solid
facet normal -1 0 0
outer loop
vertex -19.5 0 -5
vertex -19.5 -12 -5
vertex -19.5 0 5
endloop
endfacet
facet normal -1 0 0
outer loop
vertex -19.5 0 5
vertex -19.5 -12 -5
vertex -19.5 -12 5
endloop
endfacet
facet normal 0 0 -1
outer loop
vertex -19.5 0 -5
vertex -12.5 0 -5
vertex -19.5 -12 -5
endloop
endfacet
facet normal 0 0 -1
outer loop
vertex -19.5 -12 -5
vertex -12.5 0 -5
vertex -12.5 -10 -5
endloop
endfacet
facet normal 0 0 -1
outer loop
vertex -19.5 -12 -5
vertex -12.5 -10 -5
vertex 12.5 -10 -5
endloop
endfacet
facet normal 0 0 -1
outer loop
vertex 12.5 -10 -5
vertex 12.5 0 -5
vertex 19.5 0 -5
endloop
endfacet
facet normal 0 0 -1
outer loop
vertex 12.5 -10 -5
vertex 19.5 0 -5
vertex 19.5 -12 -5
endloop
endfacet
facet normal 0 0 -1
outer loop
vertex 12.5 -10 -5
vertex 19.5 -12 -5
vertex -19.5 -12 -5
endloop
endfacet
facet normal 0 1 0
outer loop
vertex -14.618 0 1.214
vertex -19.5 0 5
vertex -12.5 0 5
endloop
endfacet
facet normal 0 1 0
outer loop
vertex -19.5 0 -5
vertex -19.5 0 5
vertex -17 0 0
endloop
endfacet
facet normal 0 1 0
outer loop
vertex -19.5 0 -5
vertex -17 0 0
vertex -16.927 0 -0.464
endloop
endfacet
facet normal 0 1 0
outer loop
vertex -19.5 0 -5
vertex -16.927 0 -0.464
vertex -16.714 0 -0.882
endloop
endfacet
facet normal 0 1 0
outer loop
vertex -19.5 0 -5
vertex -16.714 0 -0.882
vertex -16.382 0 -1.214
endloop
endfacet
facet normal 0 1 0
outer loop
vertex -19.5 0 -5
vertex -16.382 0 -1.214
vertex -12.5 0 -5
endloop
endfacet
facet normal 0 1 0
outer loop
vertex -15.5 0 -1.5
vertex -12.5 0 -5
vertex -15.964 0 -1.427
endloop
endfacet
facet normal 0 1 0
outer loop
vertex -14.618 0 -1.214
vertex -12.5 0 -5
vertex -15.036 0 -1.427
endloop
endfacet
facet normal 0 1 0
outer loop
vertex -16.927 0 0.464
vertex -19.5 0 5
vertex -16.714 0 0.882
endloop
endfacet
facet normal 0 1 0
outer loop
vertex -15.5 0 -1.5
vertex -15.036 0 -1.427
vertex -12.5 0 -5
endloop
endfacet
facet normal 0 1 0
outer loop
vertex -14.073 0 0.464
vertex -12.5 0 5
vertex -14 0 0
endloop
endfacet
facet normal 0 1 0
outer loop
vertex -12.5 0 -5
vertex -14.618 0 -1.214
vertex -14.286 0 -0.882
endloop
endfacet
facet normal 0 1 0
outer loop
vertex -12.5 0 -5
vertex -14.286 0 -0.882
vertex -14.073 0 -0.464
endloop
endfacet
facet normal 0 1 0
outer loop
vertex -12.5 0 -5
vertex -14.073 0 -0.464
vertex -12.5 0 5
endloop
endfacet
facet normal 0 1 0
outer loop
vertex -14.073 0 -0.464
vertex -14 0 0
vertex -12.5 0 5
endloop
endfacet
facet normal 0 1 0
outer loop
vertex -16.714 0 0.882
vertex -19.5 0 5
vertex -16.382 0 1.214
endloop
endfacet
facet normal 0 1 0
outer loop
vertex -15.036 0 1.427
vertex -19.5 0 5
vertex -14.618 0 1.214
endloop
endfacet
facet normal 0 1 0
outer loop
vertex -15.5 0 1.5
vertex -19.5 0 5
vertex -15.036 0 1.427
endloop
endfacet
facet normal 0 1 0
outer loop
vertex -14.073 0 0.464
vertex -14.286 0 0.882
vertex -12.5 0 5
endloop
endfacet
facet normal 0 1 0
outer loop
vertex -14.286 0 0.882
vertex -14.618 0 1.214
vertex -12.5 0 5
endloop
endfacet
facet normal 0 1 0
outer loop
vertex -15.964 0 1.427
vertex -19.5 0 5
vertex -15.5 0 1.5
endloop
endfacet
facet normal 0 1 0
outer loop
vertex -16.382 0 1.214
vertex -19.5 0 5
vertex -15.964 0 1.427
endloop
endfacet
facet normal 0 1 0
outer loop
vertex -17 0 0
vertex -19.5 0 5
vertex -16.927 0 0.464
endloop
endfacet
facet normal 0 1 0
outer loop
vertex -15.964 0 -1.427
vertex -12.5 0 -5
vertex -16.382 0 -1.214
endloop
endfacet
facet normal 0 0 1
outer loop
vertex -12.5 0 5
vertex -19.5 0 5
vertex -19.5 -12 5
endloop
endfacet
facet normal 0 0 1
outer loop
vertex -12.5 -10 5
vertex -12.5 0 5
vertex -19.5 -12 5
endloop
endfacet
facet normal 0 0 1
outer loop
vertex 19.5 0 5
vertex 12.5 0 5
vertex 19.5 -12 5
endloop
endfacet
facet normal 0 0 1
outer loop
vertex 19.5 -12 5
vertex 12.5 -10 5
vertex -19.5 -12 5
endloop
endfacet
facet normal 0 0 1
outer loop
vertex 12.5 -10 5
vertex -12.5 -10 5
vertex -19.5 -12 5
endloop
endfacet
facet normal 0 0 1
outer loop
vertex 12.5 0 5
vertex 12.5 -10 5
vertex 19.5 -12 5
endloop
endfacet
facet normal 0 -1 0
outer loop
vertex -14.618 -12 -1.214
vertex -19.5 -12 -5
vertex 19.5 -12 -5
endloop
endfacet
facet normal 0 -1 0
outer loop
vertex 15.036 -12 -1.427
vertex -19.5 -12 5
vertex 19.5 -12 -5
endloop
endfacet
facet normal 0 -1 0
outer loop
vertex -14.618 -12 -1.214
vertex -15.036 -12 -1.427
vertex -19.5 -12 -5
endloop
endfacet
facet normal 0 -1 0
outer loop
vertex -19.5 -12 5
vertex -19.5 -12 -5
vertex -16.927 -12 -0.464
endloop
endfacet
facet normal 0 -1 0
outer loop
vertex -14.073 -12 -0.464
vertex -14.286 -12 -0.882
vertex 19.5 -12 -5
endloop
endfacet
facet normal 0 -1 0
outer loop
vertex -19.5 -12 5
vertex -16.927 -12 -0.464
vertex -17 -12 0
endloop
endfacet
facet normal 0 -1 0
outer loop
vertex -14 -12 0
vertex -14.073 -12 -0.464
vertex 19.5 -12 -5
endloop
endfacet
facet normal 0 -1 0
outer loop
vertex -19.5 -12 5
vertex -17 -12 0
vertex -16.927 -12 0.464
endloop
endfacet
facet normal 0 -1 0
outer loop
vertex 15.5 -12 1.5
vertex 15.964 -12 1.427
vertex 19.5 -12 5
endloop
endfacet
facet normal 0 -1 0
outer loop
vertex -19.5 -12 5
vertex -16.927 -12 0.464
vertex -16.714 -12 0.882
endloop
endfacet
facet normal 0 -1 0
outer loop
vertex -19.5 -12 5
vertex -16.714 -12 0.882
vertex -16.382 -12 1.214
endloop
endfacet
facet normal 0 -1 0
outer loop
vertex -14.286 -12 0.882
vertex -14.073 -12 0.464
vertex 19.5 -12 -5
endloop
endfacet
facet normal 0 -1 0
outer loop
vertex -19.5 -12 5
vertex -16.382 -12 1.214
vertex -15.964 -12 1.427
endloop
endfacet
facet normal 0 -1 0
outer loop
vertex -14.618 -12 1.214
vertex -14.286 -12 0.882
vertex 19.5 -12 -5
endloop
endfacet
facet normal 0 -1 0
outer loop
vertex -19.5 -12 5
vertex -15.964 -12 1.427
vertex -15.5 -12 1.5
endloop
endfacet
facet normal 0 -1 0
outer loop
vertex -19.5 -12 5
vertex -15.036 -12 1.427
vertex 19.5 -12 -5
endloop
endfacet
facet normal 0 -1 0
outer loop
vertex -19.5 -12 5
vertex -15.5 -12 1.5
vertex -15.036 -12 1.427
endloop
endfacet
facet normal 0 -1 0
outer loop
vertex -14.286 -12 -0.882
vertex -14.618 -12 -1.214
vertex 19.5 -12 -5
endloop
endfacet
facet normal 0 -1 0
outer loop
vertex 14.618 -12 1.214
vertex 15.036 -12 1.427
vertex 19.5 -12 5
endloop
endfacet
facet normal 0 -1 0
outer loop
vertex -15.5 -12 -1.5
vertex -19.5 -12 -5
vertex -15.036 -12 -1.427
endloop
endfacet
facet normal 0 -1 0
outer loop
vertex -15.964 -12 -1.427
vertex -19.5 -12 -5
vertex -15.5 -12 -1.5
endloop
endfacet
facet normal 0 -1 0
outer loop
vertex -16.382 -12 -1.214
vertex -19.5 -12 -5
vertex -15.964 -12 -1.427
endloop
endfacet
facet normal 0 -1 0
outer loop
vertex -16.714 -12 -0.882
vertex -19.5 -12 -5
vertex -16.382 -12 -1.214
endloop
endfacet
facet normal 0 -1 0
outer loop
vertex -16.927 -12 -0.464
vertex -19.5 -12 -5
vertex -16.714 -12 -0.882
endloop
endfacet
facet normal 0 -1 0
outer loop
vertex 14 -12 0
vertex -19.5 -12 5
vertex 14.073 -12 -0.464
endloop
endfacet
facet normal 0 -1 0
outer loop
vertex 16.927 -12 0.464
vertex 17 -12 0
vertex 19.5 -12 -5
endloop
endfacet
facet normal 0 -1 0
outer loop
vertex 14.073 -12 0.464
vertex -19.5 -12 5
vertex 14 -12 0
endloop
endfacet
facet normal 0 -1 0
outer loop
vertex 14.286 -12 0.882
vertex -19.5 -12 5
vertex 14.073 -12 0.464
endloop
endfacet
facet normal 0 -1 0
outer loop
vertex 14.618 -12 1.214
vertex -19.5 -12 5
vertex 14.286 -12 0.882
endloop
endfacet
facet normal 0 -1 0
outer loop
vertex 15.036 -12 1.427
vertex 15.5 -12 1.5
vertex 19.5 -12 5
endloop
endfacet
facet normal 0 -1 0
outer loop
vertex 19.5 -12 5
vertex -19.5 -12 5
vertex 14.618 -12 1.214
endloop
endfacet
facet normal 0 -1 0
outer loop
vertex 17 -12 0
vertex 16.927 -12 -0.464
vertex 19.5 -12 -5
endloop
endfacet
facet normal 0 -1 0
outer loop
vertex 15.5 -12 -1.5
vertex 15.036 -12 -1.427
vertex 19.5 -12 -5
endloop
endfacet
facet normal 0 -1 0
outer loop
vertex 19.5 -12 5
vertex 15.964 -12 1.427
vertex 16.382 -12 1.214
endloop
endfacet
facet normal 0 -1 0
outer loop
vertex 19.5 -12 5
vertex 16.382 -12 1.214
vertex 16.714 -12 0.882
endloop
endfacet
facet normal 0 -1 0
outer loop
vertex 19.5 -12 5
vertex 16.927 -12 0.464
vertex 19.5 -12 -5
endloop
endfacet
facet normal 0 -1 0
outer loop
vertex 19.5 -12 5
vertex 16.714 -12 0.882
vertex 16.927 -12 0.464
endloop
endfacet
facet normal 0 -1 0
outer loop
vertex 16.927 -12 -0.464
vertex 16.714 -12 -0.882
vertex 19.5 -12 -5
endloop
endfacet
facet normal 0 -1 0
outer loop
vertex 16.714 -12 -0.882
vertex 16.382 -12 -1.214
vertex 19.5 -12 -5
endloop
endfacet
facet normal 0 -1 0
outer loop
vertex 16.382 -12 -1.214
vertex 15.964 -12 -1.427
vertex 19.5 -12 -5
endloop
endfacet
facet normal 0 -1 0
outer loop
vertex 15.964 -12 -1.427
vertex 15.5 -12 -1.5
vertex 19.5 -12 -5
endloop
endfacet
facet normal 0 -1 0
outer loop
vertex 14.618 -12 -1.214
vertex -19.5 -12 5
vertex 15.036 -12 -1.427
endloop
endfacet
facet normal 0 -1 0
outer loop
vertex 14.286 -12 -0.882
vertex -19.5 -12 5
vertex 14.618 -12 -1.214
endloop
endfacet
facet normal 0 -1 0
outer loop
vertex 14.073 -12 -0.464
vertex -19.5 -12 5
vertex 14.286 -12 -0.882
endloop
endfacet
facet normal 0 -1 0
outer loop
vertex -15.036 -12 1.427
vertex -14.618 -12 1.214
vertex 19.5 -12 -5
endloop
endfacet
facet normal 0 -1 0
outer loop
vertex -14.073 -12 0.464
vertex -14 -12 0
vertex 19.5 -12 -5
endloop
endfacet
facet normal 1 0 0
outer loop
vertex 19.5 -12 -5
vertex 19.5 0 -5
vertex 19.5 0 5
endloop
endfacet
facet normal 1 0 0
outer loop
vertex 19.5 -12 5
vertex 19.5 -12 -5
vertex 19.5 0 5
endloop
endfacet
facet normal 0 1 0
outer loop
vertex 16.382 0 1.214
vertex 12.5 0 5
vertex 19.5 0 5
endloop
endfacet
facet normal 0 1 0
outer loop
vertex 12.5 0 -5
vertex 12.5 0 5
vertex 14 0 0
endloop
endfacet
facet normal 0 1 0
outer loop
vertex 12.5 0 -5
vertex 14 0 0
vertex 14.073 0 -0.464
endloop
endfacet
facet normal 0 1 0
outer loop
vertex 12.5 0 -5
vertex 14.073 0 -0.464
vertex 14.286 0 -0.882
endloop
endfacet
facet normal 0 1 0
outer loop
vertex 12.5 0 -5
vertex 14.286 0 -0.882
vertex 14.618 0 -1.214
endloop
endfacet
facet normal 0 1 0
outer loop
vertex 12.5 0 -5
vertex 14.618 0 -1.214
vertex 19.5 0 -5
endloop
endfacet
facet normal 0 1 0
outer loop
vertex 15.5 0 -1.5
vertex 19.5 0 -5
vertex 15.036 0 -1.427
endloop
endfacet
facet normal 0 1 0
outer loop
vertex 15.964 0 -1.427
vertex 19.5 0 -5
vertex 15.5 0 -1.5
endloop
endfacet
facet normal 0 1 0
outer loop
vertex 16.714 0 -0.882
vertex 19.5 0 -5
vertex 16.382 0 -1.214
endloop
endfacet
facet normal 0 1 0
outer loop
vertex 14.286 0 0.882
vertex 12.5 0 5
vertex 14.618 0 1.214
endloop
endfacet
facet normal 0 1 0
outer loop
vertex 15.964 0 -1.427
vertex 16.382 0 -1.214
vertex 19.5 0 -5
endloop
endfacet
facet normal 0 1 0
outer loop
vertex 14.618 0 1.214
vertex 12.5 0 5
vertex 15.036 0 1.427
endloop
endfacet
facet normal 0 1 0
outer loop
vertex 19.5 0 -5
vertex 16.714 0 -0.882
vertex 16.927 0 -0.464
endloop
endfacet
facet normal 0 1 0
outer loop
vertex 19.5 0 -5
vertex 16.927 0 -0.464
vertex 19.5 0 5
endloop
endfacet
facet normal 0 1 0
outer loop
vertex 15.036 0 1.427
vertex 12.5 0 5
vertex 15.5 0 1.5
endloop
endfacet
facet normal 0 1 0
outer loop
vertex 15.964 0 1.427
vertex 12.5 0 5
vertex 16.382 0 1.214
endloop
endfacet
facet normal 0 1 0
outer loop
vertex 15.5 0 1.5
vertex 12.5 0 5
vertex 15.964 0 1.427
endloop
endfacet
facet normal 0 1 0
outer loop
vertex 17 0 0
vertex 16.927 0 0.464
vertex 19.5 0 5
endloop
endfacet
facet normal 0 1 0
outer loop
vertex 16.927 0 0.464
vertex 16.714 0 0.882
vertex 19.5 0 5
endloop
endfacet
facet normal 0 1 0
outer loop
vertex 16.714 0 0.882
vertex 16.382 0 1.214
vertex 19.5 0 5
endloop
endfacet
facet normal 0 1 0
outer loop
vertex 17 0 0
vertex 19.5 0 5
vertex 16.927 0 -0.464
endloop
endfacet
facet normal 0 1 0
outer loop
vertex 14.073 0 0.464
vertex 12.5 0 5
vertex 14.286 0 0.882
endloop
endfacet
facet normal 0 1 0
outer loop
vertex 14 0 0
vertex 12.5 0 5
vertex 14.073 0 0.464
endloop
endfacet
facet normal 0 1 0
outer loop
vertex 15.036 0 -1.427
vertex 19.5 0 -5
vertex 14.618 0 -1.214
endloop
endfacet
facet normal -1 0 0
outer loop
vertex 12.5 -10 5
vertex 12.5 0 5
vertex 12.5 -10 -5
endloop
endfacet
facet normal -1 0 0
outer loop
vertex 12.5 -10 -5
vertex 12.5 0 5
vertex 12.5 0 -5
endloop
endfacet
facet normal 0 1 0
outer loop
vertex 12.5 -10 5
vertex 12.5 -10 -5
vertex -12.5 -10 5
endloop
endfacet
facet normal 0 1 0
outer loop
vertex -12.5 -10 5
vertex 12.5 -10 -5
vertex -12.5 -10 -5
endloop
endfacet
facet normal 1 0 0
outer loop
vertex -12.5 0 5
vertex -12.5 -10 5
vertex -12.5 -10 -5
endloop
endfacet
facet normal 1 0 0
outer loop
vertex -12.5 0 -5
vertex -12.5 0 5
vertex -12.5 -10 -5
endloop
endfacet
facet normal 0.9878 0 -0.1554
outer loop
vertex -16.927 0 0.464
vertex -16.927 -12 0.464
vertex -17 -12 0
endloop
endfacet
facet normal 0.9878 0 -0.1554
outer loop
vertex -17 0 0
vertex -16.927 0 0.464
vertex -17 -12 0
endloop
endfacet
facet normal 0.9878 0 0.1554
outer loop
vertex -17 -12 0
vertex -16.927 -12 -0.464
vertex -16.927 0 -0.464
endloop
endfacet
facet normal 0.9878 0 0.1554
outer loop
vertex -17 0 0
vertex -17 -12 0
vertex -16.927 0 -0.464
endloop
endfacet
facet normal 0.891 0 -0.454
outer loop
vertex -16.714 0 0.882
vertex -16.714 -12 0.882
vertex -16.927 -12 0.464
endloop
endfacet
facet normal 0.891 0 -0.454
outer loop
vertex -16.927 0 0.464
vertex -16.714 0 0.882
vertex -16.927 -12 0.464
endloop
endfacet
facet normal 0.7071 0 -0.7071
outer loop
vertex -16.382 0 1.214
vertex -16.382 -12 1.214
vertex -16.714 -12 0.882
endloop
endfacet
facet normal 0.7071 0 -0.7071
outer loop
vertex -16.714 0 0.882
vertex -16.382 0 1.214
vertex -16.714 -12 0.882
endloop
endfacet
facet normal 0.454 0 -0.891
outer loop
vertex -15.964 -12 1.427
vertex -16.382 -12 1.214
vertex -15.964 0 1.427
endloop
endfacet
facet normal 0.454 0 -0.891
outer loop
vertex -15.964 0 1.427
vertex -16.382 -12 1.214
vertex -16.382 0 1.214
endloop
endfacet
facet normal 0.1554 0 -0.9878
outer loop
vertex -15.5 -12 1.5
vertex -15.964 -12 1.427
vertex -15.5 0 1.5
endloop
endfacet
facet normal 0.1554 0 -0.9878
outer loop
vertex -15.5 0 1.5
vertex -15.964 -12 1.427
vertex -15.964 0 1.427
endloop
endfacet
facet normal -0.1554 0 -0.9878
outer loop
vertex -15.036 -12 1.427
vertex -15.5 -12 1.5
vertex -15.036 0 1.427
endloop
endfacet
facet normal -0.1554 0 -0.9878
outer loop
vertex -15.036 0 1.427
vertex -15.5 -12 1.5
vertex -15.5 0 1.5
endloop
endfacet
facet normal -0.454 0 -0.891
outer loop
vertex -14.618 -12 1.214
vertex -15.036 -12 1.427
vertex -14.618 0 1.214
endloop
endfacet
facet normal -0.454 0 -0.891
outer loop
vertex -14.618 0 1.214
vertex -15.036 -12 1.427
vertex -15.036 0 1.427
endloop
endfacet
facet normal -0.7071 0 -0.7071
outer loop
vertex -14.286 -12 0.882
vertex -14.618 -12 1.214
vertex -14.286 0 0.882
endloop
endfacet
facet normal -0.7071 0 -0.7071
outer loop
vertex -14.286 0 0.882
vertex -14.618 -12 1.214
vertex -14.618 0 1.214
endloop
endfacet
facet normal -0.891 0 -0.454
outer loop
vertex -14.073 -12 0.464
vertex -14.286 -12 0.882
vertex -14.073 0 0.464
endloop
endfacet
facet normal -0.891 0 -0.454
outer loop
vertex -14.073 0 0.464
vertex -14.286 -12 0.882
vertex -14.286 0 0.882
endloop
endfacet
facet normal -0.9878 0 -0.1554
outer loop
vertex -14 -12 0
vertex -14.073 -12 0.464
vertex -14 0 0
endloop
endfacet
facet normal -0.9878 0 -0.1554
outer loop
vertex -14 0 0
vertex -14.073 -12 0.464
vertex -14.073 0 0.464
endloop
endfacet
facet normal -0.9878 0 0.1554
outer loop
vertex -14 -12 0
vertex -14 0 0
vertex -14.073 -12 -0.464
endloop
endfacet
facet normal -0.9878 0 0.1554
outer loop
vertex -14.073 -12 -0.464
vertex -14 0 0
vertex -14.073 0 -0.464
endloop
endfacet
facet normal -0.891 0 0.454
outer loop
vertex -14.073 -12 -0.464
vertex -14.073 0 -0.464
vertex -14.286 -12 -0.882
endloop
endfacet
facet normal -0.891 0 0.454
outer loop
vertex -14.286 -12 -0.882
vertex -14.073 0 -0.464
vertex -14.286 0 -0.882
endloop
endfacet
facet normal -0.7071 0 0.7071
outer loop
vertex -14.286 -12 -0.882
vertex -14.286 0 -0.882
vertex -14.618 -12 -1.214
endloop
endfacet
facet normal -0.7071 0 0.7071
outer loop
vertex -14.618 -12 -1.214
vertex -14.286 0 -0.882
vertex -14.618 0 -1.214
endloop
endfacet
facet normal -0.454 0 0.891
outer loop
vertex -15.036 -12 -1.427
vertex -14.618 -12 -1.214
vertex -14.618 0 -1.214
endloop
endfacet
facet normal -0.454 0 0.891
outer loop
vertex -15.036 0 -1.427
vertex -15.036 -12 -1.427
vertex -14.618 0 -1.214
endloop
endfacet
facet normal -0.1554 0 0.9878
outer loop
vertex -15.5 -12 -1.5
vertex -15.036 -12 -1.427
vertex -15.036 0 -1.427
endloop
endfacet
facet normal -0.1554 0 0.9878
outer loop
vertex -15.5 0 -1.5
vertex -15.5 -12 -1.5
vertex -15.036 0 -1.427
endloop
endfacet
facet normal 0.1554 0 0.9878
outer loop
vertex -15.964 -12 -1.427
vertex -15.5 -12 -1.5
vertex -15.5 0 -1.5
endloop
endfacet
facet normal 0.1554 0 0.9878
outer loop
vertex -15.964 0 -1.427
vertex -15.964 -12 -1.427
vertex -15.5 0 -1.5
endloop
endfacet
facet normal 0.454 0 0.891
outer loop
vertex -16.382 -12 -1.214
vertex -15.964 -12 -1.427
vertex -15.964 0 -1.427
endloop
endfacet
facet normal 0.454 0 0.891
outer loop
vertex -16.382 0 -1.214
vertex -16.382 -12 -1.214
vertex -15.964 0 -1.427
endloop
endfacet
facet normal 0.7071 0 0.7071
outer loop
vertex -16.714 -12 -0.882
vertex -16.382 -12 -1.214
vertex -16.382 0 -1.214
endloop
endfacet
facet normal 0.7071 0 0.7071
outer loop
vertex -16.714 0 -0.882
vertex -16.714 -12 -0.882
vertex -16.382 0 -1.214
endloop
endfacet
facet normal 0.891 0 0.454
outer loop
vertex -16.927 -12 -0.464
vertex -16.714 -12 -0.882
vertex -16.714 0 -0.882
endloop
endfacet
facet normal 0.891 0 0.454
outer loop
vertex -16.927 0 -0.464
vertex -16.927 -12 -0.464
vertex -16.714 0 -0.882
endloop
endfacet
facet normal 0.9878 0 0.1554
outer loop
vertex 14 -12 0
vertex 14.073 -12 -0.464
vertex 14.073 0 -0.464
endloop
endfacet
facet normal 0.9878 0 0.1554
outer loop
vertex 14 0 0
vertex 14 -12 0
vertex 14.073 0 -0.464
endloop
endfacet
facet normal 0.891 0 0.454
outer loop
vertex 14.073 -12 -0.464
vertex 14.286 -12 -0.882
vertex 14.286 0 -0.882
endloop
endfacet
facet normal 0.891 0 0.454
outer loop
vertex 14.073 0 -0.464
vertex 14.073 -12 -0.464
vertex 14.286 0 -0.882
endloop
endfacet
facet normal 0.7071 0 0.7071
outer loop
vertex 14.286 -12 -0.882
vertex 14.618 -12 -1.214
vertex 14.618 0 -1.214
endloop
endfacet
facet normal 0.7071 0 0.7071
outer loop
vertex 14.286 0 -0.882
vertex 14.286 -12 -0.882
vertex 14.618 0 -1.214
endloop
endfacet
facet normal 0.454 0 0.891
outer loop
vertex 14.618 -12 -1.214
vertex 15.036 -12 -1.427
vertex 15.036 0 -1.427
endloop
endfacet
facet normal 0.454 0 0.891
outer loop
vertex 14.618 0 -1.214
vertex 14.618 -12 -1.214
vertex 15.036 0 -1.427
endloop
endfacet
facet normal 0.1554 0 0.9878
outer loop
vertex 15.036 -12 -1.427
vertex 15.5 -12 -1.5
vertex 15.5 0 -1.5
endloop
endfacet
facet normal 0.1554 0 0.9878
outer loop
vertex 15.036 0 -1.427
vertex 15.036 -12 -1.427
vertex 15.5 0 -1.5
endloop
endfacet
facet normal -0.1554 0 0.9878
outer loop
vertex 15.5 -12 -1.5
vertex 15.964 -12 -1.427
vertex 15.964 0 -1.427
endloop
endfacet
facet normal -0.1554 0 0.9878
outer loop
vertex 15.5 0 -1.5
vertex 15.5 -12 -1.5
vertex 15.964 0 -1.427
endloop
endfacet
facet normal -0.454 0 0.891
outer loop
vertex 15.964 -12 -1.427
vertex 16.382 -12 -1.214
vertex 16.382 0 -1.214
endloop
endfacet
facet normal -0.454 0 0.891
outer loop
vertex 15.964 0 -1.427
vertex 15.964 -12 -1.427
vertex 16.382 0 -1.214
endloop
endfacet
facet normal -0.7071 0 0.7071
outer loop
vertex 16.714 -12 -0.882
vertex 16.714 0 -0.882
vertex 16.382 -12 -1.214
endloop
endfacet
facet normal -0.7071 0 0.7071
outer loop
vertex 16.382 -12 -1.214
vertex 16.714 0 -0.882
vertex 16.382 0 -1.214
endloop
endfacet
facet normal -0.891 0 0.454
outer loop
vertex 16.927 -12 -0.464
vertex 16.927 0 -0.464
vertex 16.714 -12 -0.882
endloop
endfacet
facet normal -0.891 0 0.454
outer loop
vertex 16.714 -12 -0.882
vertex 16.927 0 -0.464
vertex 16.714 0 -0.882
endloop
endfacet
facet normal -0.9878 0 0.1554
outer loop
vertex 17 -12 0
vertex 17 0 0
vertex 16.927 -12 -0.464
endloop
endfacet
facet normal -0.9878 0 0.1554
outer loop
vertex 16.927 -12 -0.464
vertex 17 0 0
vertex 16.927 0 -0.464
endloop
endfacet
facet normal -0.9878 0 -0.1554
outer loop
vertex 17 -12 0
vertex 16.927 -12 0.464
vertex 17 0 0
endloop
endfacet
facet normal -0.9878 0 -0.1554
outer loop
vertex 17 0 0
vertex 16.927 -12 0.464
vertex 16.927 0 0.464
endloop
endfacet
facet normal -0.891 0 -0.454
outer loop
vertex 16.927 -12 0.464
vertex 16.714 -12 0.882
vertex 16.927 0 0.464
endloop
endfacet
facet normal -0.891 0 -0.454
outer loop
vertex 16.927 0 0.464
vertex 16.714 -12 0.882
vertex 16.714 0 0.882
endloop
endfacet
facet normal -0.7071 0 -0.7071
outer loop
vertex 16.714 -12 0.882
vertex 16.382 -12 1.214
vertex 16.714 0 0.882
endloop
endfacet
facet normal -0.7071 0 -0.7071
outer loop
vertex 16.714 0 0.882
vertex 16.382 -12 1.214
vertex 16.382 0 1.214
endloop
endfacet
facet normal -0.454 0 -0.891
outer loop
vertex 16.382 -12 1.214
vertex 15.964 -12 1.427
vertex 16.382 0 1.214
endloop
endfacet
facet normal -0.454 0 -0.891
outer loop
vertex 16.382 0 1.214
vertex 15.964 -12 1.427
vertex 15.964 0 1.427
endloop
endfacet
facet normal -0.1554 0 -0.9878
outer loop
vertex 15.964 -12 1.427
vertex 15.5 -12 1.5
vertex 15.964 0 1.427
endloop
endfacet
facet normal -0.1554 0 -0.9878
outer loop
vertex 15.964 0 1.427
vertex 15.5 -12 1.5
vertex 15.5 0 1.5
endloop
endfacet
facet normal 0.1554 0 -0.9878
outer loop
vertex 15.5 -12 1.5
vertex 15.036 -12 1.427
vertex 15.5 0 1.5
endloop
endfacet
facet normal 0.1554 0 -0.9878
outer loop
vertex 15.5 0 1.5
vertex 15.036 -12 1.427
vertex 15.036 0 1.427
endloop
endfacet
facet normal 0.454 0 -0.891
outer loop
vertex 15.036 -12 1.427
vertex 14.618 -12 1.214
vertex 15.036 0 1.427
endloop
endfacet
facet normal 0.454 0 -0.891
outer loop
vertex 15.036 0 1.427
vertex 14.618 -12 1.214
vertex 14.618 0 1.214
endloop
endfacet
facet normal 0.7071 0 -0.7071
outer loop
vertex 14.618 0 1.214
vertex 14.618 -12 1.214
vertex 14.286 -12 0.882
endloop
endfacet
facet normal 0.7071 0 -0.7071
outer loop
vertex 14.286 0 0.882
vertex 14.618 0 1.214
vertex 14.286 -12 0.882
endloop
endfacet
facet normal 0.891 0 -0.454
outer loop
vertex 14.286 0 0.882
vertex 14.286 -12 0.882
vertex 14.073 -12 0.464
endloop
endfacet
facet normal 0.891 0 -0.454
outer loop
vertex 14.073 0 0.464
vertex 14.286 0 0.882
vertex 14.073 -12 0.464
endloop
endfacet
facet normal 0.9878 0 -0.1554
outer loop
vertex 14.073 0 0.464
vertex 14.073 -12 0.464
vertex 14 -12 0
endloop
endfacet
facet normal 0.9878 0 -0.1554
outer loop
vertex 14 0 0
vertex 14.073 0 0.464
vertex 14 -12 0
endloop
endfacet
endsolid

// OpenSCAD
x=39;
x2=25;
y=10;
z=31;
h=2;
h2=10;
rotate([90,0,0])
difference() {
		translate([0,0,h/2])difference() {
		union() {
			translate([0,0,h2/2])cube([x,y,h+h2],true);
			translate([0,0,h2/2])cube([x2+2*h,y,h+h2],true);
		}
		translate([0,0,(h2-h)/2-.1])cube([x2,y+1,h2+.2],true);
	}
	translate([-z/2,0,-0.5])cylinder(13,r=3/2,$fn=20);
	translate([z/2,0,-0.5])cylinder(13,r=3/2,$fn=20);
	//translate([10,-y/2+1,h2+1])cube([3,3,3],true);
}
